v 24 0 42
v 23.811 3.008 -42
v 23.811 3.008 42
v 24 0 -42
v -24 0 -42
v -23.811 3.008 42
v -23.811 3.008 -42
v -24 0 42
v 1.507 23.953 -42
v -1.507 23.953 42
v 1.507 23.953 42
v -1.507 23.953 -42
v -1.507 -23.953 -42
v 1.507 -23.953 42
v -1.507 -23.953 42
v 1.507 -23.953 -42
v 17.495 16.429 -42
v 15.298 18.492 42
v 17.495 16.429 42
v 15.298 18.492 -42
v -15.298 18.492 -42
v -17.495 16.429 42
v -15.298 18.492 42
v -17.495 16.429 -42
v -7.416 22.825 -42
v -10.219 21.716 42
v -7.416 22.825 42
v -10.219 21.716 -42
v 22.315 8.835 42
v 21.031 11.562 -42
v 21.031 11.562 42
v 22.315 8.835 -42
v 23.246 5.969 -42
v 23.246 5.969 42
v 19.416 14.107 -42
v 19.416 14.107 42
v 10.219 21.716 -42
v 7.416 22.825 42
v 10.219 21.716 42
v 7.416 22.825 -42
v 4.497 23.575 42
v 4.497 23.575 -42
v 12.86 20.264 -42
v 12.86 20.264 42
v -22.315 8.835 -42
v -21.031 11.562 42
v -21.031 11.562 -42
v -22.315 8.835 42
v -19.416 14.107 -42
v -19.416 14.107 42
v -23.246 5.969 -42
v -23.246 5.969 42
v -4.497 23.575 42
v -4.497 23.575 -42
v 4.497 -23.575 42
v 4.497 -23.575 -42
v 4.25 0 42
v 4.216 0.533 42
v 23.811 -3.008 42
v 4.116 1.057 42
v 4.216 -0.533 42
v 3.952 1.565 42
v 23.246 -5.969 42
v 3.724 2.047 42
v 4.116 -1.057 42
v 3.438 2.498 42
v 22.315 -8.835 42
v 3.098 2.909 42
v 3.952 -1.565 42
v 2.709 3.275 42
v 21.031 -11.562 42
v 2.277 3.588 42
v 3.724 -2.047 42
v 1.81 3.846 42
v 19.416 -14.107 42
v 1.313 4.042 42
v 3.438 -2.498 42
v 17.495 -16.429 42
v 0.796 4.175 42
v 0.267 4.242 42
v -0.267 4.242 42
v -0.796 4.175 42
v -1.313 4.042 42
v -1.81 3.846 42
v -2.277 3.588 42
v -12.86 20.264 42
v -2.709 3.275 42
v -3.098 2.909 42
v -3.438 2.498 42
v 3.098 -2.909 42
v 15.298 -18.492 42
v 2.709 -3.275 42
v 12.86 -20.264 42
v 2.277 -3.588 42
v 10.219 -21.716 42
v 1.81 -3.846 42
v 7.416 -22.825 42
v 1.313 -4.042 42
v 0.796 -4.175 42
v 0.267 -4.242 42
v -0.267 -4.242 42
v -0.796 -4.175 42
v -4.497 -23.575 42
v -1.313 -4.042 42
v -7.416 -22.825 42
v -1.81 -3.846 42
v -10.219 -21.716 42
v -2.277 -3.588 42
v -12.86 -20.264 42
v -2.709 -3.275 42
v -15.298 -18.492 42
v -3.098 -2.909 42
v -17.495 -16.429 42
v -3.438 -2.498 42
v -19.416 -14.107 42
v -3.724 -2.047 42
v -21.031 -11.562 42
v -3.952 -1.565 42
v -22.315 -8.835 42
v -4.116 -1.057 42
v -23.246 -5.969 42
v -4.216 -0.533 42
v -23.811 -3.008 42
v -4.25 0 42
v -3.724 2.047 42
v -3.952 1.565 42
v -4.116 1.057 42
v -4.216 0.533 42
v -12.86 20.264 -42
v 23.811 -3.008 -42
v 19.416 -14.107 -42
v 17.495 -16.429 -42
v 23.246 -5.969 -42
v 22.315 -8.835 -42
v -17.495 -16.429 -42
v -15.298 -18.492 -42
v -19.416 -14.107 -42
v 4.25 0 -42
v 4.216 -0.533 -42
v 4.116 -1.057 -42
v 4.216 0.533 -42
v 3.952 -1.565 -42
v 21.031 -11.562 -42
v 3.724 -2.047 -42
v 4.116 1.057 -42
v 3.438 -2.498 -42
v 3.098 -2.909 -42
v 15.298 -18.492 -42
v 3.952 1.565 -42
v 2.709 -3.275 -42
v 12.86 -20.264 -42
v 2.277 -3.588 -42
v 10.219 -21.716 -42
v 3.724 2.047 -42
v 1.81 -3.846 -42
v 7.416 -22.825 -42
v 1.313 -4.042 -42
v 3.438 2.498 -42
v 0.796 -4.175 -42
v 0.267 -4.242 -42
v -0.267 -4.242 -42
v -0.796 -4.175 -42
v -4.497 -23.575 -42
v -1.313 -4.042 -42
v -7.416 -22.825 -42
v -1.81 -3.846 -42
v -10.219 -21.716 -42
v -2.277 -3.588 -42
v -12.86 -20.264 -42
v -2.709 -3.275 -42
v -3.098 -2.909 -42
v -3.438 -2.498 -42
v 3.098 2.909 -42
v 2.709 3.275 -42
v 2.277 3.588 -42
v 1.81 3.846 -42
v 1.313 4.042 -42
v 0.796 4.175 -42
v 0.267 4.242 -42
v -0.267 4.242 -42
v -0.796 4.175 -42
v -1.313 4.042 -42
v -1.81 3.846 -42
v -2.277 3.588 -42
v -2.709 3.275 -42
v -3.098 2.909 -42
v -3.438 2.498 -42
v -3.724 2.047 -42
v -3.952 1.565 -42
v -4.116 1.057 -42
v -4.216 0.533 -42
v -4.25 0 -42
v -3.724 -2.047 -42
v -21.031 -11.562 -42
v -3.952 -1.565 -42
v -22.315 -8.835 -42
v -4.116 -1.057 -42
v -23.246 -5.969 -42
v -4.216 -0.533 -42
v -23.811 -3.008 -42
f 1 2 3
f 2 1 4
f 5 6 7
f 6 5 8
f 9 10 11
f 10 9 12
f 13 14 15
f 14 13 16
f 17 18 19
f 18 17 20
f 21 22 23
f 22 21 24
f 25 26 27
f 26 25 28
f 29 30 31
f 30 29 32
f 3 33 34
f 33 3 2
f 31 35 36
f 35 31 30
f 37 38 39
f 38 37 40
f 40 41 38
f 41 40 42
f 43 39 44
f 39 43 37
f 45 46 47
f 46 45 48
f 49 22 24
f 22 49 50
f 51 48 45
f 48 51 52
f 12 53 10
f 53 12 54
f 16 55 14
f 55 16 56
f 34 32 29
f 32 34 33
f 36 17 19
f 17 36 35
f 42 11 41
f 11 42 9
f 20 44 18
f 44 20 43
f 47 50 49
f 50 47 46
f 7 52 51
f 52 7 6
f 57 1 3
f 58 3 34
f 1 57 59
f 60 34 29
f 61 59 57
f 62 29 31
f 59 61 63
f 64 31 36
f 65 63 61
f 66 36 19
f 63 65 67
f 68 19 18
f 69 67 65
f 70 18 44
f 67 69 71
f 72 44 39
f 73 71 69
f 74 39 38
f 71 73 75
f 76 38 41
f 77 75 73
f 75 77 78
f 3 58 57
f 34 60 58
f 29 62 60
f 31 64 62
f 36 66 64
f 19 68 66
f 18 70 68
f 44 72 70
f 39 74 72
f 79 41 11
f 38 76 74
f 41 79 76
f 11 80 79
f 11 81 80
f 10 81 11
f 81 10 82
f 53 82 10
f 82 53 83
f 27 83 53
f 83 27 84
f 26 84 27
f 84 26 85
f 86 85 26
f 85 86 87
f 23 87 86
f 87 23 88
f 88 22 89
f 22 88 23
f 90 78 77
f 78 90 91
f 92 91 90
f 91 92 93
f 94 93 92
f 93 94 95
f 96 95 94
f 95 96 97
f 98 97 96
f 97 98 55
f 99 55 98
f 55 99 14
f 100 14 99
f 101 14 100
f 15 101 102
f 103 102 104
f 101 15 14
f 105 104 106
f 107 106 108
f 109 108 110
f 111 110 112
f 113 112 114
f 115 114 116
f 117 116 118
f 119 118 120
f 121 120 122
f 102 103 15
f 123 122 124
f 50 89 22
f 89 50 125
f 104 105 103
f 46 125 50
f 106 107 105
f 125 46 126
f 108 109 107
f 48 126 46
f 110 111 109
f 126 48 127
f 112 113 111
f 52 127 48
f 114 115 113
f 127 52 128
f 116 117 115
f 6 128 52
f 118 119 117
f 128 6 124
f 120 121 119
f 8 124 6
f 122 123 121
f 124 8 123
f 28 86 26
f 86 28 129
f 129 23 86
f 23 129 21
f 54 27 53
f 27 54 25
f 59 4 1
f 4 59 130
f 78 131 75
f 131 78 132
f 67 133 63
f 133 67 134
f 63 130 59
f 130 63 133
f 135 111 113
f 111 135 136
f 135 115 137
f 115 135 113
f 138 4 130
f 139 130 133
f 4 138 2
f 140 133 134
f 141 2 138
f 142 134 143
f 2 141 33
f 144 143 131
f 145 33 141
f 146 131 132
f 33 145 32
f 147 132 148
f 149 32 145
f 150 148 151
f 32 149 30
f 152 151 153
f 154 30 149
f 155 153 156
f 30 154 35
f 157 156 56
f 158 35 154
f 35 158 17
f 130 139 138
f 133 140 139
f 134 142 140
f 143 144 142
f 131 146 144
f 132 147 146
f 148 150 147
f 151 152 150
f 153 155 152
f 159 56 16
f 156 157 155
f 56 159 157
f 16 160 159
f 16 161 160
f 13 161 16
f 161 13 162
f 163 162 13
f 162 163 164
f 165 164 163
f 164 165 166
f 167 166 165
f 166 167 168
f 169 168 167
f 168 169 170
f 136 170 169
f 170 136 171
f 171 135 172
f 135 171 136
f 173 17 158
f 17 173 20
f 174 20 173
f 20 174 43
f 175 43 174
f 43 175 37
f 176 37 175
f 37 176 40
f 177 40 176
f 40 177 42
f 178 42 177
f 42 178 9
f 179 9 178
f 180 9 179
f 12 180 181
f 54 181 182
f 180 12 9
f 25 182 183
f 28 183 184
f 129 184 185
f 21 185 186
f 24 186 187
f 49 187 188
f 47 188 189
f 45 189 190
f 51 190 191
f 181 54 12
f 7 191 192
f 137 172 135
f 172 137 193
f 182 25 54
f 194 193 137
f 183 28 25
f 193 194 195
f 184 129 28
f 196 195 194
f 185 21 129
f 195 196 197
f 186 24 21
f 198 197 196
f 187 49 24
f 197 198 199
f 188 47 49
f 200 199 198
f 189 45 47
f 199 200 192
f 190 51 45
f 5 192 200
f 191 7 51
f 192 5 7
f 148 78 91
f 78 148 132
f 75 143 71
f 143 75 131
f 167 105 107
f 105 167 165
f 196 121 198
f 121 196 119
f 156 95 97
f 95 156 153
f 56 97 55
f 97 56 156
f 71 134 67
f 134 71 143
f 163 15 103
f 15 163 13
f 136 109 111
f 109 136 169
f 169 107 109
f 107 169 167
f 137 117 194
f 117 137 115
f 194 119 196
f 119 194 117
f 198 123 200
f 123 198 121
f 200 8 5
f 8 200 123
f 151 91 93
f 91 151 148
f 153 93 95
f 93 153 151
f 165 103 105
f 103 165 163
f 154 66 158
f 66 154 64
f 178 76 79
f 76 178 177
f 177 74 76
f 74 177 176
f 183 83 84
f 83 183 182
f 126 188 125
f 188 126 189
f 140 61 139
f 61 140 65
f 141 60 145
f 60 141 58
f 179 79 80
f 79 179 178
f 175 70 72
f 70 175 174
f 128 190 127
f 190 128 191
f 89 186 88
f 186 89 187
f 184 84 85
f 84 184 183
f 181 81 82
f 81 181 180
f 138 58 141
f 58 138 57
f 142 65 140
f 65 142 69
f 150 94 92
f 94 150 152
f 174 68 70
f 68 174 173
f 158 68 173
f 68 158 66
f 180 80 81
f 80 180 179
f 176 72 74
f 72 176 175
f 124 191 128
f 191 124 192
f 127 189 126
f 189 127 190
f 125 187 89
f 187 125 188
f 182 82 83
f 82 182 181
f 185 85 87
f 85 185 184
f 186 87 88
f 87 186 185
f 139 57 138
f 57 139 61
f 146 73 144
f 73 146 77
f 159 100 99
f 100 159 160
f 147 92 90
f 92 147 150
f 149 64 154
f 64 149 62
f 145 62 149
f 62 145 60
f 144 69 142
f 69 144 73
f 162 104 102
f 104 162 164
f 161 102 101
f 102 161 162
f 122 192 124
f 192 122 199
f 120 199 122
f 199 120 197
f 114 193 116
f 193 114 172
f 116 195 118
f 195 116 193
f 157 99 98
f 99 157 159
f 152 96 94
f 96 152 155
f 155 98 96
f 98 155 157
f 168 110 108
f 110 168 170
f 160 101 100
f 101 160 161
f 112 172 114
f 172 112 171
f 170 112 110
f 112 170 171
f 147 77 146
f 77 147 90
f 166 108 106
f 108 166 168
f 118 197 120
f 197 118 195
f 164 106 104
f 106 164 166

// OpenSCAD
$fn = 50;


difference() {
	union() {
		translate(v = [0, 0, -42.0000000000]) {
			cylinder(h = 84, r = 24.0000000000);
		}
	}
	union() {
		translate(v = [0, 0, -100.0000000000]) {
			cylinder(h = 200, r = 4.2500000000);
		}
	}
}
